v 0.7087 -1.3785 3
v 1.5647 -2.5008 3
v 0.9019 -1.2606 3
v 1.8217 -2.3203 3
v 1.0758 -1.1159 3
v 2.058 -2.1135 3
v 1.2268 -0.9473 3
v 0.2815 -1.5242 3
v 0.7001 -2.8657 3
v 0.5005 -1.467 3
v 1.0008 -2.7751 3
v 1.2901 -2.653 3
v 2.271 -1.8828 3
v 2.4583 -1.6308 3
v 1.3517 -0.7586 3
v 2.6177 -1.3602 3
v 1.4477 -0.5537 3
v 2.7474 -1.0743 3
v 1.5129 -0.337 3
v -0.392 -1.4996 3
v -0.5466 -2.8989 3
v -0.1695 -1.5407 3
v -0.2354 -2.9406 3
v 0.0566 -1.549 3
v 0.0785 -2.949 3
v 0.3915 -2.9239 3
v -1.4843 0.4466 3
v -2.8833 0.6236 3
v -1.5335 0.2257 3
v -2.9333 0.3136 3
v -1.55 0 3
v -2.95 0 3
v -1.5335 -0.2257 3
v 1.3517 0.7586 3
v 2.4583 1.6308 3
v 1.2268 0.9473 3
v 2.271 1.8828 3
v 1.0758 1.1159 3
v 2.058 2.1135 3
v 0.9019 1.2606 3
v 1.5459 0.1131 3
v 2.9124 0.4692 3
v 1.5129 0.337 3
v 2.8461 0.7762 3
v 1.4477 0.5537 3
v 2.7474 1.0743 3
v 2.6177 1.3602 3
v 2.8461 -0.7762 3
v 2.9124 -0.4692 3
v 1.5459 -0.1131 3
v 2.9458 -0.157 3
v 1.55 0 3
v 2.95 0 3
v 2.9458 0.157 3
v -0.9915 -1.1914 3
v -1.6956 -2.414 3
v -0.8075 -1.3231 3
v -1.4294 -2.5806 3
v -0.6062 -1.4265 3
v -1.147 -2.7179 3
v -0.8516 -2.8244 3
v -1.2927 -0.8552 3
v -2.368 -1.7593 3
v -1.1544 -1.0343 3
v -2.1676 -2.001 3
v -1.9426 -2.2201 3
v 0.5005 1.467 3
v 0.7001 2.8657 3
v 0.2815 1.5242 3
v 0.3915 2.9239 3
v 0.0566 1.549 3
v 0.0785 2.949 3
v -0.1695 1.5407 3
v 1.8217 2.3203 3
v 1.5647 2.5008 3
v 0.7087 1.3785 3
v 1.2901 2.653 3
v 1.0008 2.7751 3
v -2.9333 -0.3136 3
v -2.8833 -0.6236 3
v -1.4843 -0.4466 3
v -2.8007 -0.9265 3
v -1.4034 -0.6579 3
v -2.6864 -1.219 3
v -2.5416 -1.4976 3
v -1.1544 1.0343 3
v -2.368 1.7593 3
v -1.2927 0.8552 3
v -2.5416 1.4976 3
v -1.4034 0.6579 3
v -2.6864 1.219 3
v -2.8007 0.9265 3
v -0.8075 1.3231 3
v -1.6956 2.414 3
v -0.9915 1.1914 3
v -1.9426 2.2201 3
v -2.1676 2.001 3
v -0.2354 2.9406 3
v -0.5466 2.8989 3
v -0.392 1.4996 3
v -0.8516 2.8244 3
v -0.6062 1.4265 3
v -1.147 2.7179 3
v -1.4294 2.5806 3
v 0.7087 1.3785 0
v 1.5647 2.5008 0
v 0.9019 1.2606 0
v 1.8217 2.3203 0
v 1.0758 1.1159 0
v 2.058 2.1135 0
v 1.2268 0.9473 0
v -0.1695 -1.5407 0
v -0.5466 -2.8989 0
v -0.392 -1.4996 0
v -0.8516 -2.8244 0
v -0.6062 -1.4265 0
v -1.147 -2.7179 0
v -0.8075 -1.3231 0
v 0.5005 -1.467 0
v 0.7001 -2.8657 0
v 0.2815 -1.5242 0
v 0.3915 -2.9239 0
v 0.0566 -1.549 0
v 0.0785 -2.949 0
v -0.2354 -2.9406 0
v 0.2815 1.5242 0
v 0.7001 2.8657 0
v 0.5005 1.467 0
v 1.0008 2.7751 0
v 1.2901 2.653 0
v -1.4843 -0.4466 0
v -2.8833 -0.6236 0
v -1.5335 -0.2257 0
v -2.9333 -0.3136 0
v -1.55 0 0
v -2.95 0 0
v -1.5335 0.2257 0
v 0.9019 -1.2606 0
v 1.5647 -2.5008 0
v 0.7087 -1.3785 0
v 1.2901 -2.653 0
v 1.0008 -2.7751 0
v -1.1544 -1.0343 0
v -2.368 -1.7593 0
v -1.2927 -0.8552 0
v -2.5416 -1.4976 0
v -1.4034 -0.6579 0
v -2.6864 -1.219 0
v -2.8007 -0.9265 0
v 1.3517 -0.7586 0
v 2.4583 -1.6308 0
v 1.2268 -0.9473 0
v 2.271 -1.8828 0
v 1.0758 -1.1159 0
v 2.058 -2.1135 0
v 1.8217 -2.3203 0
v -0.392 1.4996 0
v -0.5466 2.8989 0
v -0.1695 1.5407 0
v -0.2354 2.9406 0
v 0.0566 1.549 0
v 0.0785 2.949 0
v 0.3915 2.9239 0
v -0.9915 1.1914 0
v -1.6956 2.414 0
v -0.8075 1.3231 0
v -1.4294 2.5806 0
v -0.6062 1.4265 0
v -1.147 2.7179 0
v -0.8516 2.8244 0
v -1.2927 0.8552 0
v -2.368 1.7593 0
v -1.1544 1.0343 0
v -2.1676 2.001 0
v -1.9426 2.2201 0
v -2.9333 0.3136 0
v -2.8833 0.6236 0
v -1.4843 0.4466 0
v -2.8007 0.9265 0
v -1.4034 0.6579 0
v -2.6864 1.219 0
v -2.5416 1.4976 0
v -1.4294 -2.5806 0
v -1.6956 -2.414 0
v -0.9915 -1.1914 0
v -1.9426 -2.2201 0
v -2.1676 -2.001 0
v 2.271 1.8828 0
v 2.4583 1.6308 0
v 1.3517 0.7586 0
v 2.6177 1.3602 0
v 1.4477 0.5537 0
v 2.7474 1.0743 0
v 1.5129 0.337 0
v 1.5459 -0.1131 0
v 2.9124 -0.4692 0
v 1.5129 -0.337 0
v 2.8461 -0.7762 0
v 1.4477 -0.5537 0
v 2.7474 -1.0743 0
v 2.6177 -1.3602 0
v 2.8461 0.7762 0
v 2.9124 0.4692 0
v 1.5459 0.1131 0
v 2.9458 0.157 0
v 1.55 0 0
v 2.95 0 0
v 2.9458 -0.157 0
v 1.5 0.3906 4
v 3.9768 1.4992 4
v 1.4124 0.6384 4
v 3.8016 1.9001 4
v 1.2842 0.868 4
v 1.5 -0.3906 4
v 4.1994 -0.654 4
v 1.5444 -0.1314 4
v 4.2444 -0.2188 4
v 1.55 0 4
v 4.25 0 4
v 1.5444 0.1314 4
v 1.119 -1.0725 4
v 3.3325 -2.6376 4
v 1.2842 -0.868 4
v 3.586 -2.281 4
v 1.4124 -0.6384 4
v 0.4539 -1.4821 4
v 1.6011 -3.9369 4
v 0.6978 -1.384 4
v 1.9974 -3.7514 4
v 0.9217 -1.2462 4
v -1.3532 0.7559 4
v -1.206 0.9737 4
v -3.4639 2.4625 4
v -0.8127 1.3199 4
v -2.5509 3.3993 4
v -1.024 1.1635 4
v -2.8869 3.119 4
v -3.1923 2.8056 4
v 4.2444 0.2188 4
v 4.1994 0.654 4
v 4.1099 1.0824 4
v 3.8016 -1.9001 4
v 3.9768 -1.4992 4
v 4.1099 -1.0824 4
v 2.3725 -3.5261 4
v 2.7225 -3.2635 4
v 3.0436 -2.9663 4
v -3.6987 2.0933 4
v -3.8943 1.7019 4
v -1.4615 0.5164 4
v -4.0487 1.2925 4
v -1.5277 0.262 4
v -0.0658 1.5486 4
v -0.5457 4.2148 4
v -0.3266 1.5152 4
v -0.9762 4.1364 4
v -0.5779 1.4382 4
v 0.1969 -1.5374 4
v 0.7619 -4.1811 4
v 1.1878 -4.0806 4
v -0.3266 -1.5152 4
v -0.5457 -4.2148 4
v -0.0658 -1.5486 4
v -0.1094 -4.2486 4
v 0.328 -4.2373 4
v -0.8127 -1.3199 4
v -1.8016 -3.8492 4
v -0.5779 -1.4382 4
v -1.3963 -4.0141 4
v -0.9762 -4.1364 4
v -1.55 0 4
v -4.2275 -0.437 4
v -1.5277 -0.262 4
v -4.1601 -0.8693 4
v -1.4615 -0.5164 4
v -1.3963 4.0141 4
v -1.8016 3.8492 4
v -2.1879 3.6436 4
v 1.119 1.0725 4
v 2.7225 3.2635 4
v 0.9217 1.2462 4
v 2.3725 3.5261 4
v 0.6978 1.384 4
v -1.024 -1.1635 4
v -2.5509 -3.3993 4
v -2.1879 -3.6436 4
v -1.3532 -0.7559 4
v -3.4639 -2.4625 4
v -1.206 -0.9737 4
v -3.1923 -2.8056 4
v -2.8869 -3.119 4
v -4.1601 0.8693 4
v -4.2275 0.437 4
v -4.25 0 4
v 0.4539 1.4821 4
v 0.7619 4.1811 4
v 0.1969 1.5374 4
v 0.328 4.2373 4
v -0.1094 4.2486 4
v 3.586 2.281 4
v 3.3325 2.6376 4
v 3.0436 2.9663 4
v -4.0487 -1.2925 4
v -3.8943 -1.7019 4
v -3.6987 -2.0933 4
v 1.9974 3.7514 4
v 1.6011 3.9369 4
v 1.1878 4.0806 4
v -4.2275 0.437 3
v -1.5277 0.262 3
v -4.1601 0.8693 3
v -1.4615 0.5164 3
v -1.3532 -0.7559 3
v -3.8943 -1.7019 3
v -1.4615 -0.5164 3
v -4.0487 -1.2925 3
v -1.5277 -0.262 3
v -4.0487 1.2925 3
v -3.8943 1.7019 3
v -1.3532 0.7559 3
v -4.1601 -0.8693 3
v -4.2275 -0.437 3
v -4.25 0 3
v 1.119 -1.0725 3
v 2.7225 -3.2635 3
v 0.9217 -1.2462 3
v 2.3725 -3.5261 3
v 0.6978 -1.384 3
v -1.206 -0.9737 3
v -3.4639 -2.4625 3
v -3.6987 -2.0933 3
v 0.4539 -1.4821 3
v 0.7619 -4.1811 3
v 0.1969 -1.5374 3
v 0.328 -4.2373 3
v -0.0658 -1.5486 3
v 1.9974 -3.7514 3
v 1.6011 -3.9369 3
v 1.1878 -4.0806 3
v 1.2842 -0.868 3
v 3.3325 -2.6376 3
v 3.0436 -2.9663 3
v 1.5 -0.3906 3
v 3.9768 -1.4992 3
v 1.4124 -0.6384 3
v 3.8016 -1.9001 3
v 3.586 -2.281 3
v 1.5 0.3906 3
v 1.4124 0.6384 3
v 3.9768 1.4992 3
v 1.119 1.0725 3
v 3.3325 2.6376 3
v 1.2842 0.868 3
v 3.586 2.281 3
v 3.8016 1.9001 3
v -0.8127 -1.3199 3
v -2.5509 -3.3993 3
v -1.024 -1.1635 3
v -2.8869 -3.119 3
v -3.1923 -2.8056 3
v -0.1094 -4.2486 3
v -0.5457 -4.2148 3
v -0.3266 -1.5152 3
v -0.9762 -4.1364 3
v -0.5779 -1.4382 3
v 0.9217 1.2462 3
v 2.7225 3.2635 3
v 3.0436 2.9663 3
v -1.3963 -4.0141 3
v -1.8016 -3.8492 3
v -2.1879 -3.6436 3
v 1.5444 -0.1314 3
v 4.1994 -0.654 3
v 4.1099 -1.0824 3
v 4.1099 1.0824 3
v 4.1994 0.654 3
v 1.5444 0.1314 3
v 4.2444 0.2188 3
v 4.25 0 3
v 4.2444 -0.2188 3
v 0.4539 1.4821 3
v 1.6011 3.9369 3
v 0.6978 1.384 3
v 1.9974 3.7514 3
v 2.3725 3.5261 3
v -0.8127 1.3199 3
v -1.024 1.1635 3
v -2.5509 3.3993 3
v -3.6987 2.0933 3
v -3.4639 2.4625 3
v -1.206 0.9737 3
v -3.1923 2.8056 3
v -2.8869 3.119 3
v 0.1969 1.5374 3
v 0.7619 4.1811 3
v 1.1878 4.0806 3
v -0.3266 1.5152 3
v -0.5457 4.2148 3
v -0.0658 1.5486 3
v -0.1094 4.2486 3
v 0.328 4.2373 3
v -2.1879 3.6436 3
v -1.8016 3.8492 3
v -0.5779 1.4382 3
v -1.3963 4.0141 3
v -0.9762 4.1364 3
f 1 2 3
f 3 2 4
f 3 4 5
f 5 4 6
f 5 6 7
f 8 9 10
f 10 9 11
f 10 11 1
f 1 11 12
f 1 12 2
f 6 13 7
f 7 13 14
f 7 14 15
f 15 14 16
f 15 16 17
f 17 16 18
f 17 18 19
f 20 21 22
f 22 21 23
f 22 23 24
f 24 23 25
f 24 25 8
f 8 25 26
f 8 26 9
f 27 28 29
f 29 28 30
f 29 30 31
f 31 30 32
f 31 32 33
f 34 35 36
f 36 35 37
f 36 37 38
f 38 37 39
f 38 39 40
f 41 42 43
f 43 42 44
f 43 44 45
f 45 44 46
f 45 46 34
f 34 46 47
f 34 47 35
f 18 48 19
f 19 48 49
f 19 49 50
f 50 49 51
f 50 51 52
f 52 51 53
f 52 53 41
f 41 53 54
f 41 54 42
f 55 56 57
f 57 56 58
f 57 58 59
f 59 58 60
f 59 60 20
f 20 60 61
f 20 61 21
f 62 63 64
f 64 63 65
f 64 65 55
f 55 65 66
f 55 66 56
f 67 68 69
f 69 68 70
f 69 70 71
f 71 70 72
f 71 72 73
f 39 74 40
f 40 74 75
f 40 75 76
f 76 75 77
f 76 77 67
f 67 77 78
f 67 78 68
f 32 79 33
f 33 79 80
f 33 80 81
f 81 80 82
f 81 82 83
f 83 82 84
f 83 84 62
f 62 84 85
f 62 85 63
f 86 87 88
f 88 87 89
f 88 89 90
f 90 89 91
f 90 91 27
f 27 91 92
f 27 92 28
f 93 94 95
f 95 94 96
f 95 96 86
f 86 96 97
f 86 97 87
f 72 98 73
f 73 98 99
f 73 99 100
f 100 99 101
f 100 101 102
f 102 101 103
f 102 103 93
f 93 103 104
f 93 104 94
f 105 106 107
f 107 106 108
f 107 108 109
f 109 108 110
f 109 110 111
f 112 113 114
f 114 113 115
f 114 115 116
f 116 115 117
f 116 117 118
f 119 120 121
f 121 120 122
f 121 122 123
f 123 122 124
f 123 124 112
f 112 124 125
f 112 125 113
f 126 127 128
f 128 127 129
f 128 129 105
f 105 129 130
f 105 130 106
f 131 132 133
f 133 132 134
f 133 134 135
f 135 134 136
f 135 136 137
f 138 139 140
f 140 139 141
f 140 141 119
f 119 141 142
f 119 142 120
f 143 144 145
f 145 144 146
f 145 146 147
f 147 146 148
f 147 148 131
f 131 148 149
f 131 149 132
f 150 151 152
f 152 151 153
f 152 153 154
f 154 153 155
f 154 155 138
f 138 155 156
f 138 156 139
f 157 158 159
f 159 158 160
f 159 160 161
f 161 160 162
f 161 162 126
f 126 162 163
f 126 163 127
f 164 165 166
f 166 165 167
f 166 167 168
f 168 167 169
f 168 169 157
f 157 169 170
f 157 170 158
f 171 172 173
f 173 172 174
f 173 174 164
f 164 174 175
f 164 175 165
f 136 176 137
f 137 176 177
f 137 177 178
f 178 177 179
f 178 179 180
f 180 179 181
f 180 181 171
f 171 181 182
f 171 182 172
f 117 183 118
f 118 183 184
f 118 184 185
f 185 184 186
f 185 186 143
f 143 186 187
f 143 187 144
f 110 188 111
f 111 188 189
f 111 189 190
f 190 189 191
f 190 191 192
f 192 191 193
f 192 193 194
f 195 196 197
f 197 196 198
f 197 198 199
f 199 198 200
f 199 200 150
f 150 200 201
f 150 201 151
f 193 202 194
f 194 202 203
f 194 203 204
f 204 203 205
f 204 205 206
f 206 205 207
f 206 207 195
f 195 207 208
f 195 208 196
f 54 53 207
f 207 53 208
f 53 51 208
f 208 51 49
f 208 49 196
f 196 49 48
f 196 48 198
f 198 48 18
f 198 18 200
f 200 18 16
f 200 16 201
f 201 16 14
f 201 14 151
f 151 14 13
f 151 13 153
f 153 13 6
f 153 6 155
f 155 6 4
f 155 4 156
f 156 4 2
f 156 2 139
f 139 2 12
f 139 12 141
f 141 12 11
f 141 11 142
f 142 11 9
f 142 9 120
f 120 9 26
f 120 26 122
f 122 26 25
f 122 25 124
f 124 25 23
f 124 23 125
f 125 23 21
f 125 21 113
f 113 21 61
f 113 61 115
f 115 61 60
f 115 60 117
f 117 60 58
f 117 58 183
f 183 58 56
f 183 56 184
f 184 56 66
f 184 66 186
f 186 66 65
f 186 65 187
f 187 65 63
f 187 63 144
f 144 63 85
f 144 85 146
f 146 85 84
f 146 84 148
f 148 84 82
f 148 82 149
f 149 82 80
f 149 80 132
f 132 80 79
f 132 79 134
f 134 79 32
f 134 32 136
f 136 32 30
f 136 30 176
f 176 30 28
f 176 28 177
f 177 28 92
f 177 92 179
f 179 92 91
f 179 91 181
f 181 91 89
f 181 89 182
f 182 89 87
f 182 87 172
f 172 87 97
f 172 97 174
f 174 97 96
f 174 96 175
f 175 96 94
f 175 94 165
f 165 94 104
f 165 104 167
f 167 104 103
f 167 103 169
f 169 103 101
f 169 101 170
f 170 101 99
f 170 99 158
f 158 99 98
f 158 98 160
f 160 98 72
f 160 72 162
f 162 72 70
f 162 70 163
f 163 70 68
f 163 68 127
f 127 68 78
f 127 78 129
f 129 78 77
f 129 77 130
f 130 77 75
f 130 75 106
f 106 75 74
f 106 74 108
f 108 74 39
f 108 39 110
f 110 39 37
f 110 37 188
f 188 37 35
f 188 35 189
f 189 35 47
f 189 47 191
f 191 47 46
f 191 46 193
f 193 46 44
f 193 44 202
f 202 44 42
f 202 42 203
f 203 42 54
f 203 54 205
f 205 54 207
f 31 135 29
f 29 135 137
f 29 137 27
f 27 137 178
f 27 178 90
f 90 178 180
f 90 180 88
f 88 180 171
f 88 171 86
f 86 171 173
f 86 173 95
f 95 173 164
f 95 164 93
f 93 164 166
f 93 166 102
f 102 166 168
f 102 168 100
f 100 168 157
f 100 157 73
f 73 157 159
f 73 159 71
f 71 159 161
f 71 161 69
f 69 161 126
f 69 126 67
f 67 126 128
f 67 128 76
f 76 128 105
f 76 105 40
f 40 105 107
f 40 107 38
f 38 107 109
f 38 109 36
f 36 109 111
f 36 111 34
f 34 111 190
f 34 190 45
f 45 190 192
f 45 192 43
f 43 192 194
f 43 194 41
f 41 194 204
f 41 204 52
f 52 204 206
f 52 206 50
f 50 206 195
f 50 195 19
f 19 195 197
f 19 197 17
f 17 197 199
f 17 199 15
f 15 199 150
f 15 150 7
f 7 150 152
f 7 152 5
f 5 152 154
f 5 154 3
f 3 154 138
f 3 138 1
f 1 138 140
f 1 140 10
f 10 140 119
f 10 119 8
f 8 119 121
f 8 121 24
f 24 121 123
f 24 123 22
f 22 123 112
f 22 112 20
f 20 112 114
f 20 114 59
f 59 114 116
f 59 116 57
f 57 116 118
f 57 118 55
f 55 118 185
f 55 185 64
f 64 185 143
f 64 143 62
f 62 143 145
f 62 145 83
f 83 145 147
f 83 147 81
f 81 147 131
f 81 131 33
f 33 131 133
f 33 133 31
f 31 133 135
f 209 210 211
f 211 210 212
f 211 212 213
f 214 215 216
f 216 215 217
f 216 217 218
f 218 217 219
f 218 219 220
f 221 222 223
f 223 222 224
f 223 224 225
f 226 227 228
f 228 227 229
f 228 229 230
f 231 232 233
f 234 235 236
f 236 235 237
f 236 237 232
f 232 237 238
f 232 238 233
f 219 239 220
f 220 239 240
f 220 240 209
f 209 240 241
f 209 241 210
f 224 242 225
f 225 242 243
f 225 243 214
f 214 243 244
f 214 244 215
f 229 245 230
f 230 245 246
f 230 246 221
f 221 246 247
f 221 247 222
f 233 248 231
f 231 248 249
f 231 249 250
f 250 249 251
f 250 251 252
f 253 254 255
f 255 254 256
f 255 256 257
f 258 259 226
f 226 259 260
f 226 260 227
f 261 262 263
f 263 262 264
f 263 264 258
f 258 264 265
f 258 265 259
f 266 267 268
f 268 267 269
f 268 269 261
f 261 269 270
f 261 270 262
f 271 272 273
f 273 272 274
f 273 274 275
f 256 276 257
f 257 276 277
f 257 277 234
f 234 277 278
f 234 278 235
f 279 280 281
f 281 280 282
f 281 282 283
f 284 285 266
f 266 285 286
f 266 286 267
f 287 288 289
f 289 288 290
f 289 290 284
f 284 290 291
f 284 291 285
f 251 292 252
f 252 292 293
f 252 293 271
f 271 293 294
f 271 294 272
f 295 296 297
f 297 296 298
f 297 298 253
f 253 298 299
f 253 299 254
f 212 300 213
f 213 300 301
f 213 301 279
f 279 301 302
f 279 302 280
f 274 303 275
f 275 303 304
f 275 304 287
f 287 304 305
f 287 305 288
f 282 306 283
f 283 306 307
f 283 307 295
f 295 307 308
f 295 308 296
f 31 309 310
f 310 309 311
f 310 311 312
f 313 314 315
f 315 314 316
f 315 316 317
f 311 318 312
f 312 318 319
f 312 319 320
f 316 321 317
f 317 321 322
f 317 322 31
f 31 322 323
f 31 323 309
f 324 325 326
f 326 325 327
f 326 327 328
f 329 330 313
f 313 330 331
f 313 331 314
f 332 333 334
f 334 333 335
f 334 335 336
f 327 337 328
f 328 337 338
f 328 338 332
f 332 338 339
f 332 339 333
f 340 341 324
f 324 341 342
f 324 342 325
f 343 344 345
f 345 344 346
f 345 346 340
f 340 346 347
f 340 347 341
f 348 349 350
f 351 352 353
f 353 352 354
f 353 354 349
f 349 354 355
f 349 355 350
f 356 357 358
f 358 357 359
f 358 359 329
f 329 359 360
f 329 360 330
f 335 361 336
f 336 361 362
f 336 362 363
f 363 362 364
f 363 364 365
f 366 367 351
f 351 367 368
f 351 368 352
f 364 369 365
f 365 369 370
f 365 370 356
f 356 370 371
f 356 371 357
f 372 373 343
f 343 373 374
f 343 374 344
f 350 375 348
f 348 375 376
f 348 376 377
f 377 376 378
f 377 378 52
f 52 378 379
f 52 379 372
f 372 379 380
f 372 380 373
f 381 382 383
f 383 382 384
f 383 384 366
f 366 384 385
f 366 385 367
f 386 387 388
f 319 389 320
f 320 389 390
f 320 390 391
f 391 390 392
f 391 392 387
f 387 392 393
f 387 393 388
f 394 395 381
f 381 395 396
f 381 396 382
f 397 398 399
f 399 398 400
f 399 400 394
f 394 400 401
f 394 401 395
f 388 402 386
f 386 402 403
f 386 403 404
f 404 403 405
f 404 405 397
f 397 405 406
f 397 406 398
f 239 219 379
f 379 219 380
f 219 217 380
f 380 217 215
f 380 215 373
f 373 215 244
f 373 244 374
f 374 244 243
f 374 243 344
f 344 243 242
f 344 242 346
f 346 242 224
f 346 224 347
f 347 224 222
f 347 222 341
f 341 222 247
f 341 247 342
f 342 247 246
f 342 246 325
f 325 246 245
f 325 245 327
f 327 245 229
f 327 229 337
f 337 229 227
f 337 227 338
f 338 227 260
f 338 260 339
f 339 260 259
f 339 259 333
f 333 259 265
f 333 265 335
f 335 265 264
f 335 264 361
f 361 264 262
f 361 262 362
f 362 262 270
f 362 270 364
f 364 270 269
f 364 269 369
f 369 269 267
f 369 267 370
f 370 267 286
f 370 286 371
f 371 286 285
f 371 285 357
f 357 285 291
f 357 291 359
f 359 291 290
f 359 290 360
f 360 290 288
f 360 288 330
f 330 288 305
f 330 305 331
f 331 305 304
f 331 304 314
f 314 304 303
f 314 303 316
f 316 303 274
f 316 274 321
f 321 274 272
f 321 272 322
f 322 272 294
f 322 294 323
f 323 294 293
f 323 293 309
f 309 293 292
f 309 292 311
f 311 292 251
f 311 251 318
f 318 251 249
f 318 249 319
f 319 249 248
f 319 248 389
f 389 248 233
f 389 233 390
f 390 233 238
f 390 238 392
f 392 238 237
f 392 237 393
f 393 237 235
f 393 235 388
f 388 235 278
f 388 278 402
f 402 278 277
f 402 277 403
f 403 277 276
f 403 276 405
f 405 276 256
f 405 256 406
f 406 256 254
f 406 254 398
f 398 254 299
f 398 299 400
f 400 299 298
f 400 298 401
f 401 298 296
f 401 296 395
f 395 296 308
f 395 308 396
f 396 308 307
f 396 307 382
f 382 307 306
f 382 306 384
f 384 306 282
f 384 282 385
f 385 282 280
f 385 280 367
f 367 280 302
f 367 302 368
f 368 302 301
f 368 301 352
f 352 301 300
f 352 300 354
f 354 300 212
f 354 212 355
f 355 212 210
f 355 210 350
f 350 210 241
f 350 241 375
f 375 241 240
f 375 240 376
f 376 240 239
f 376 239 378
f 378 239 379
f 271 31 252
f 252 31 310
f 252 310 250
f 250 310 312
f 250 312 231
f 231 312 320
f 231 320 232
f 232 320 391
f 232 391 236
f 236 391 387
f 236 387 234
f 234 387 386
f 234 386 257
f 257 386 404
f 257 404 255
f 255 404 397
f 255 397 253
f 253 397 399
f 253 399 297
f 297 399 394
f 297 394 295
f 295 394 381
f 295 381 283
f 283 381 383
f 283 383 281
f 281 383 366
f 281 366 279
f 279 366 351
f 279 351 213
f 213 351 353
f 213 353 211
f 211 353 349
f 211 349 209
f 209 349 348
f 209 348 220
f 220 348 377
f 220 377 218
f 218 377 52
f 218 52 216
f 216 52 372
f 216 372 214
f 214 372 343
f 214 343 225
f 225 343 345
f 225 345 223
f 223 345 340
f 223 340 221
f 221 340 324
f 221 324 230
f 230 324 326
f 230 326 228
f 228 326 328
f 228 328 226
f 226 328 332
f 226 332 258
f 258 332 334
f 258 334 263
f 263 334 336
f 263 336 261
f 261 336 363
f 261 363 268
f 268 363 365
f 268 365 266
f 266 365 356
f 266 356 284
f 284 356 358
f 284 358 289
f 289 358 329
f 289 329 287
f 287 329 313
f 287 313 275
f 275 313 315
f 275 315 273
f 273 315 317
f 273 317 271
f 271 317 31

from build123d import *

# Parameters (mm, degrees)
CROQUIS1_R              = 2.95
CROQUIS1_R_2            = 1.55
SALIENTE_EXTRUIR1_DEPTH = 3
CROQUIS2_R              = 4.25
CROQUIS2_R_2            = 1.55
SALIENTE_EXTRUIR2_DEPTH = 1


with BuildPart() as part:
    # Croquis1 → Saliente-Extruir1 (new body)
    with BuildSketch(Plane.XY):
        Circle(CROQUIS1_R)
        Circle(CROQUIS1_R_2, mode=Mode.SUBTRACT)
    extrude(amount=SALIENTE_EXTRUIR1_DEPTH)


with BuildPart() as body_2:
    # Croquis2 → Saliente-Extruir2 (new body)
    with BuildSketch(Plane.XY.offset(3)):
        Circle(CROQUIS2_R)
        Circle(CROQUIS2_R_2, mode=Mode.SUBTRACT)
    extrude(amount=SALIENTE_EXTRUIR2_DEPTH)


solid = Compound([part.part, body_2.part])
